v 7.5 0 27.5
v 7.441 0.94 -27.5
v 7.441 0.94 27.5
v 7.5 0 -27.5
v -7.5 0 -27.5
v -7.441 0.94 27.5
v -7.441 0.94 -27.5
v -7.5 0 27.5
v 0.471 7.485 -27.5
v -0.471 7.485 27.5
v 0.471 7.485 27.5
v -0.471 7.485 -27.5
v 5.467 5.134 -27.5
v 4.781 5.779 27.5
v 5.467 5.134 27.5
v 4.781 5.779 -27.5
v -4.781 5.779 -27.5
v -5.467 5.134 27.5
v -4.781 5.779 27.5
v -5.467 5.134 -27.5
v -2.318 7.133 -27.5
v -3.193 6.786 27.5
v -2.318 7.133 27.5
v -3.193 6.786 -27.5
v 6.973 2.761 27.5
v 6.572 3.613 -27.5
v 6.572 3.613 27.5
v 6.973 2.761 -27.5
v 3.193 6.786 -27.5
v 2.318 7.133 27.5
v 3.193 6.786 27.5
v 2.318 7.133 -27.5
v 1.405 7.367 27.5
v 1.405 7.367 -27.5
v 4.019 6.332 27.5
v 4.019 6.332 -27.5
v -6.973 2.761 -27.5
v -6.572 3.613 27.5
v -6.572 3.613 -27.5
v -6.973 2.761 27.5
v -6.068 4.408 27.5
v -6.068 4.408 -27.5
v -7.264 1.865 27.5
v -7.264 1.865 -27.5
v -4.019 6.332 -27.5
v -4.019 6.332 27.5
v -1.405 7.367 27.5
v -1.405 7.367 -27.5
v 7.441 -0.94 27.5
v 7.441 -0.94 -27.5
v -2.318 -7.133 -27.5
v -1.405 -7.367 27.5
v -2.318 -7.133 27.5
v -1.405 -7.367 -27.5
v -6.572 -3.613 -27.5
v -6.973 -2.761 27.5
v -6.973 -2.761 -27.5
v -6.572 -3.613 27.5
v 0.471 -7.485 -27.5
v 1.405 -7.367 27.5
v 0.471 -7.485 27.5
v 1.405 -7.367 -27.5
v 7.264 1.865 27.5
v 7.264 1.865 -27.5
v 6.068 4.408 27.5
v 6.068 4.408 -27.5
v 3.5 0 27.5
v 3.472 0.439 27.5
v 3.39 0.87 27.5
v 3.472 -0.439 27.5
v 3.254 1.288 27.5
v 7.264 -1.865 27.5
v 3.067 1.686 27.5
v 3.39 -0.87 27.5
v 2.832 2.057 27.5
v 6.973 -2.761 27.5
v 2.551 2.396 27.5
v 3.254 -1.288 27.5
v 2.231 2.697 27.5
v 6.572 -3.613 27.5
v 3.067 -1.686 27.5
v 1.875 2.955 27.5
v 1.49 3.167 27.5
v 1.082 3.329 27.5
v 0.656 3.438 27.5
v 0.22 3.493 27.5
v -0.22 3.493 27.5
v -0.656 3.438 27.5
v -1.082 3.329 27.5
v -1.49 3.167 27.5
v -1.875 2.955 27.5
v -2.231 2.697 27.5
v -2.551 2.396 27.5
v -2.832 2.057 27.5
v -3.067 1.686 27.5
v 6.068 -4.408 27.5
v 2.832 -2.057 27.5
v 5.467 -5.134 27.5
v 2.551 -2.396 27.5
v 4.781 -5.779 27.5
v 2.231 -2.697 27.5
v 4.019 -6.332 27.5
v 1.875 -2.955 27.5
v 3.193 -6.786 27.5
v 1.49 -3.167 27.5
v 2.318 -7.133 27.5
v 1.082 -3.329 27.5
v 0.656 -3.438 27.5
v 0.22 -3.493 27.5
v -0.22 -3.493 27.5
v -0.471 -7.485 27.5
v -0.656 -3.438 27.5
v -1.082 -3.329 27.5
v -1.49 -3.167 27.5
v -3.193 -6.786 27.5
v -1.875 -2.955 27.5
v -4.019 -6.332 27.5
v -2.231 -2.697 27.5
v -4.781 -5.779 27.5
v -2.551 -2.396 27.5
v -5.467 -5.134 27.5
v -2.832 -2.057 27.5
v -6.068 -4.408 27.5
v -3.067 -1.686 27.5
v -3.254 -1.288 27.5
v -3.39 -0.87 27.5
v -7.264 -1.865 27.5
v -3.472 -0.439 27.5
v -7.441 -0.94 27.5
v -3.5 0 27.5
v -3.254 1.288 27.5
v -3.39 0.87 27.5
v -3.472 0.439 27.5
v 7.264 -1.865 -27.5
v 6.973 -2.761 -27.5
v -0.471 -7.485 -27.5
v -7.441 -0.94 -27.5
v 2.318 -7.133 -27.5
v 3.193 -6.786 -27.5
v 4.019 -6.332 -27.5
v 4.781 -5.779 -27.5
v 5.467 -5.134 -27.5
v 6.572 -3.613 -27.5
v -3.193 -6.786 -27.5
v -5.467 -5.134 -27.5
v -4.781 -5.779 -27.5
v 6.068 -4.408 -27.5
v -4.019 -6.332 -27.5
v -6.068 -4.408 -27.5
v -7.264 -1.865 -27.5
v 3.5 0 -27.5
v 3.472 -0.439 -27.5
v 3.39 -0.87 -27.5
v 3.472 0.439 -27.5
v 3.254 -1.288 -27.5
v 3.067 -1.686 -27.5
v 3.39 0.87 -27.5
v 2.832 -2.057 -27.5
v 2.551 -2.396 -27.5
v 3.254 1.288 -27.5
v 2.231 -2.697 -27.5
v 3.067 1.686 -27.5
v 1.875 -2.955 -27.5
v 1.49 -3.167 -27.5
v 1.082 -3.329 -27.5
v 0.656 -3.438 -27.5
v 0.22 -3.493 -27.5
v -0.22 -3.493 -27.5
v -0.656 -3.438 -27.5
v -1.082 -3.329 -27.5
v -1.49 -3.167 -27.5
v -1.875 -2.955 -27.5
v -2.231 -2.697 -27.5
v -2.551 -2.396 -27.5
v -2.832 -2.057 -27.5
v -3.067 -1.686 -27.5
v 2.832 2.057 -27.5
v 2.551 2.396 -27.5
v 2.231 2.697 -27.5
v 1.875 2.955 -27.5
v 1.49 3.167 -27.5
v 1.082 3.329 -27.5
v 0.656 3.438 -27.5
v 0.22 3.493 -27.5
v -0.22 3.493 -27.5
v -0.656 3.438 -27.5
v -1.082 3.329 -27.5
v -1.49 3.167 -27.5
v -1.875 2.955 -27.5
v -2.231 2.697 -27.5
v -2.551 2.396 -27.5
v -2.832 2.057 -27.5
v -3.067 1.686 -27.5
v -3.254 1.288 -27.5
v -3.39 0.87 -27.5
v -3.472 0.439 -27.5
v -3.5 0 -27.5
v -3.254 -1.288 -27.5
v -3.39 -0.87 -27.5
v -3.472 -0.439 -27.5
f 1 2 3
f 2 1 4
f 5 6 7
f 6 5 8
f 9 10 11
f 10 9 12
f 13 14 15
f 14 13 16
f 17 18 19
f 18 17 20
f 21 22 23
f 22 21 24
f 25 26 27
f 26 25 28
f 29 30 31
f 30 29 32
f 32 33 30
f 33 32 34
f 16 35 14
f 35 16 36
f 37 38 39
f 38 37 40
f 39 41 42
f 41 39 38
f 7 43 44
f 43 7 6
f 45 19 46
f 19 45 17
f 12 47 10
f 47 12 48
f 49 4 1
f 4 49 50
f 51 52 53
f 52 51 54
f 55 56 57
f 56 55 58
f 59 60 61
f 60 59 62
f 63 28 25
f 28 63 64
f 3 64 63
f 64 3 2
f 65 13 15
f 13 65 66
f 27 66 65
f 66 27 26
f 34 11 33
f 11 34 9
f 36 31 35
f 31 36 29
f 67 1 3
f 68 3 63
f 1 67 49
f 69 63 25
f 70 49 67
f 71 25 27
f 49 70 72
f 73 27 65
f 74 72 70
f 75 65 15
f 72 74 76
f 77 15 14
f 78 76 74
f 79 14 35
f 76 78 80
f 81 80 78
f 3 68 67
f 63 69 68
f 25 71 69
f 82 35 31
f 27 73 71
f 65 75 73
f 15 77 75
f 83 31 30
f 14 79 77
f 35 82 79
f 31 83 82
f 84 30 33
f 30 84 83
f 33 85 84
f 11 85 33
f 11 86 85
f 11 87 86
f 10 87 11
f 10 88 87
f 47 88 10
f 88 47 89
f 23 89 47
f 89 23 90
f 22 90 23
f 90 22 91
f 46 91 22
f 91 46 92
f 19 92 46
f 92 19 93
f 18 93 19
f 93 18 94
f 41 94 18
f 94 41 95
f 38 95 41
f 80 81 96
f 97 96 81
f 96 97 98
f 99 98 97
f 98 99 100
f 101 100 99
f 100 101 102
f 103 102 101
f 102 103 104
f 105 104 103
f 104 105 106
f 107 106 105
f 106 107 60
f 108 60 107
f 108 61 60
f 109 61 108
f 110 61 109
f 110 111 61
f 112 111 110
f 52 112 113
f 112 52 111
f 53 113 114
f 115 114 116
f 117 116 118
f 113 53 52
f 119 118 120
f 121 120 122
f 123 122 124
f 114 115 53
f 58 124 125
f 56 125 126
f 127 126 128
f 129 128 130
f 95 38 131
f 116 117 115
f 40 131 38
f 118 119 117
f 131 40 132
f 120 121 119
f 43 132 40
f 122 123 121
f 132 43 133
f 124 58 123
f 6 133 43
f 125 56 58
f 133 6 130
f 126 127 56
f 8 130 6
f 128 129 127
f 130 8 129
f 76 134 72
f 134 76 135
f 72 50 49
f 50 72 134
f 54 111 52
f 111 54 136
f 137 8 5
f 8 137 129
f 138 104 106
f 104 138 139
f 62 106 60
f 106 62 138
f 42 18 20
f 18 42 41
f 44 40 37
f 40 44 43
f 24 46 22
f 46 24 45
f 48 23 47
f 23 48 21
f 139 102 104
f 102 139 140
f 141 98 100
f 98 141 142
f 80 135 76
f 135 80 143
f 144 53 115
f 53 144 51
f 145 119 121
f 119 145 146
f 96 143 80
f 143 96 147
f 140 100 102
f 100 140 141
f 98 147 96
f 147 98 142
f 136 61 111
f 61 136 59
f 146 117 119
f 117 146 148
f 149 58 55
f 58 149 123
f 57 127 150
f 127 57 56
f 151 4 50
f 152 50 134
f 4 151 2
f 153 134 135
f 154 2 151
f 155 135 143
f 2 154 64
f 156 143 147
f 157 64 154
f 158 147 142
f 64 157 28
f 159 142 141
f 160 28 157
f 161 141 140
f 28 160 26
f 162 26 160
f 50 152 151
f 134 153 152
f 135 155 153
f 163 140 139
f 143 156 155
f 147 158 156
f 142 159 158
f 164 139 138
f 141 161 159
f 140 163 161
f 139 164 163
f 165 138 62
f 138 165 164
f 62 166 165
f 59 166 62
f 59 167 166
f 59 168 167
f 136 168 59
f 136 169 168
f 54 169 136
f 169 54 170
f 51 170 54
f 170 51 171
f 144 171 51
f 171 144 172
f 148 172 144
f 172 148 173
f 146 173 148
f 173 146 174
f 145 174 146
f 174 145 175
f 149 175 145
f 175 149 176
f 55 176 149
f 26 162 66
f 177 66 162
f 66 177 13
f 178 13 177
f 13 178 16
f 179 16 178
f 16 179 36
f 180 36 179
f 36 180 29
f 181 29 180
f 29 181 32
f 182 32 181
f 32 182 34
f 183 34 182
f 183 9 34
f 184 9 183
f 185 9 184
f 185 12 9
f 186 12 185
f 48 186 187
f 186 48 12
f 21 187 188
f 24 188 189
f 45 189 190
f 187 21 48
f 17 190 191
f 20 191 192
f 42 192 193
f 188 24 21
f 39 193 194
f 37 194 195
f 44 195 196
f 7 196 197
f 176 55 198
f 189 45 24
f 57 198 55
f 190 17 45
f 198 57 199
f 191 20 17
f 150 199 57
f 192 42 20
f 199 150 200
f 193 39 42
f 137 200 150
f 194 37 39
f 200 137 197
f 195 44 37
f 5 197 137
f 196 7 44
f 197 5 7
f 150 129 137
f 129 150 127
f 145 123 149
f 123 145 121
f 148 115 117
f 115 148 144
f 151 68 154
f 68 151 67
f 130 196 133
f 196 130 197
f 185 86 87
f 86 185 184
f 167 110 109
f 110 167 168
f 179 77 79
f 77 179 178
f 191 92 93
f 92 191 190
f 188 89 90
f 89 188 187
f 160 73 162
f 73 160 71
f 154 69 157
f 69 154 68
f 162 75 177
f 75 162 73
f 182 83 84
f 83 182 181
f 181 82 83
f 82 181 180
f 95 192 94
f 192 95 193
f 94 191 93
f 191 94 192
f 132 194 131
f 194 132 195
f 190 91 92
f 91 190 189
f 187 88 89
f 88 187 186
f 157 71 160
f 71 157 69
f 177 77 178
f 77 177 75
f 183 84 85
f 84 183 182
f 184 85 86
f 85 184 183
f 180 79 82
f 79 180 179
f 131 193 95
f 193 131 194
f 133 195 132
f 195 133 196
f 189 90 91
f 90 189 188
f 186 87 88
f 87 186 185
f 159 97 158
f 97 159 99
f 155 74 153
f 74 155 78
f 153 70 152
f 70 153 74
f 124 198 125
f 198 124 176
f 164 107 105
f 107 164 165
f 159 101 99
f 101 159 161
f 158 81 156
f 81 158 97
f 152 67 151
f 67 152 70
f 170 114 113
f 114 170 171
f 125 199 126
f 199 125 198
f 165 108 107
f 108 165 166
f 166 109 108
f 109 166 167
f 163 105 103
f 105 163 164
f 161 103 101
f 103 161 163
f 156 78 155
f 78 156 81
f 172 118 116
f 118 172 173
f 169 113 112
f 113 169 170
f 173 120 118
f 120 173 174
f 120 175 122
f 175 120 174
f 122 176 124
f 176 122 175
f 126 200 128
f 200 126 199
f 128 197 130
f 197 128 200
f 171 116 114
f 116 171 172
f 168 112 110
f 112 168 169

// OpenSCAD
$fn = 50;


difference() {
	union() {
		translate(v = [0, 0, -27.5000000000]) {
			cylinder(h = 55, r = 7.5000000000);
		}
	}
	union() {
		translate(v = [0, 0, -100.0000000000]) {
			cylinder(h = 200, r = 3.5000000000);
		}
	}
}
